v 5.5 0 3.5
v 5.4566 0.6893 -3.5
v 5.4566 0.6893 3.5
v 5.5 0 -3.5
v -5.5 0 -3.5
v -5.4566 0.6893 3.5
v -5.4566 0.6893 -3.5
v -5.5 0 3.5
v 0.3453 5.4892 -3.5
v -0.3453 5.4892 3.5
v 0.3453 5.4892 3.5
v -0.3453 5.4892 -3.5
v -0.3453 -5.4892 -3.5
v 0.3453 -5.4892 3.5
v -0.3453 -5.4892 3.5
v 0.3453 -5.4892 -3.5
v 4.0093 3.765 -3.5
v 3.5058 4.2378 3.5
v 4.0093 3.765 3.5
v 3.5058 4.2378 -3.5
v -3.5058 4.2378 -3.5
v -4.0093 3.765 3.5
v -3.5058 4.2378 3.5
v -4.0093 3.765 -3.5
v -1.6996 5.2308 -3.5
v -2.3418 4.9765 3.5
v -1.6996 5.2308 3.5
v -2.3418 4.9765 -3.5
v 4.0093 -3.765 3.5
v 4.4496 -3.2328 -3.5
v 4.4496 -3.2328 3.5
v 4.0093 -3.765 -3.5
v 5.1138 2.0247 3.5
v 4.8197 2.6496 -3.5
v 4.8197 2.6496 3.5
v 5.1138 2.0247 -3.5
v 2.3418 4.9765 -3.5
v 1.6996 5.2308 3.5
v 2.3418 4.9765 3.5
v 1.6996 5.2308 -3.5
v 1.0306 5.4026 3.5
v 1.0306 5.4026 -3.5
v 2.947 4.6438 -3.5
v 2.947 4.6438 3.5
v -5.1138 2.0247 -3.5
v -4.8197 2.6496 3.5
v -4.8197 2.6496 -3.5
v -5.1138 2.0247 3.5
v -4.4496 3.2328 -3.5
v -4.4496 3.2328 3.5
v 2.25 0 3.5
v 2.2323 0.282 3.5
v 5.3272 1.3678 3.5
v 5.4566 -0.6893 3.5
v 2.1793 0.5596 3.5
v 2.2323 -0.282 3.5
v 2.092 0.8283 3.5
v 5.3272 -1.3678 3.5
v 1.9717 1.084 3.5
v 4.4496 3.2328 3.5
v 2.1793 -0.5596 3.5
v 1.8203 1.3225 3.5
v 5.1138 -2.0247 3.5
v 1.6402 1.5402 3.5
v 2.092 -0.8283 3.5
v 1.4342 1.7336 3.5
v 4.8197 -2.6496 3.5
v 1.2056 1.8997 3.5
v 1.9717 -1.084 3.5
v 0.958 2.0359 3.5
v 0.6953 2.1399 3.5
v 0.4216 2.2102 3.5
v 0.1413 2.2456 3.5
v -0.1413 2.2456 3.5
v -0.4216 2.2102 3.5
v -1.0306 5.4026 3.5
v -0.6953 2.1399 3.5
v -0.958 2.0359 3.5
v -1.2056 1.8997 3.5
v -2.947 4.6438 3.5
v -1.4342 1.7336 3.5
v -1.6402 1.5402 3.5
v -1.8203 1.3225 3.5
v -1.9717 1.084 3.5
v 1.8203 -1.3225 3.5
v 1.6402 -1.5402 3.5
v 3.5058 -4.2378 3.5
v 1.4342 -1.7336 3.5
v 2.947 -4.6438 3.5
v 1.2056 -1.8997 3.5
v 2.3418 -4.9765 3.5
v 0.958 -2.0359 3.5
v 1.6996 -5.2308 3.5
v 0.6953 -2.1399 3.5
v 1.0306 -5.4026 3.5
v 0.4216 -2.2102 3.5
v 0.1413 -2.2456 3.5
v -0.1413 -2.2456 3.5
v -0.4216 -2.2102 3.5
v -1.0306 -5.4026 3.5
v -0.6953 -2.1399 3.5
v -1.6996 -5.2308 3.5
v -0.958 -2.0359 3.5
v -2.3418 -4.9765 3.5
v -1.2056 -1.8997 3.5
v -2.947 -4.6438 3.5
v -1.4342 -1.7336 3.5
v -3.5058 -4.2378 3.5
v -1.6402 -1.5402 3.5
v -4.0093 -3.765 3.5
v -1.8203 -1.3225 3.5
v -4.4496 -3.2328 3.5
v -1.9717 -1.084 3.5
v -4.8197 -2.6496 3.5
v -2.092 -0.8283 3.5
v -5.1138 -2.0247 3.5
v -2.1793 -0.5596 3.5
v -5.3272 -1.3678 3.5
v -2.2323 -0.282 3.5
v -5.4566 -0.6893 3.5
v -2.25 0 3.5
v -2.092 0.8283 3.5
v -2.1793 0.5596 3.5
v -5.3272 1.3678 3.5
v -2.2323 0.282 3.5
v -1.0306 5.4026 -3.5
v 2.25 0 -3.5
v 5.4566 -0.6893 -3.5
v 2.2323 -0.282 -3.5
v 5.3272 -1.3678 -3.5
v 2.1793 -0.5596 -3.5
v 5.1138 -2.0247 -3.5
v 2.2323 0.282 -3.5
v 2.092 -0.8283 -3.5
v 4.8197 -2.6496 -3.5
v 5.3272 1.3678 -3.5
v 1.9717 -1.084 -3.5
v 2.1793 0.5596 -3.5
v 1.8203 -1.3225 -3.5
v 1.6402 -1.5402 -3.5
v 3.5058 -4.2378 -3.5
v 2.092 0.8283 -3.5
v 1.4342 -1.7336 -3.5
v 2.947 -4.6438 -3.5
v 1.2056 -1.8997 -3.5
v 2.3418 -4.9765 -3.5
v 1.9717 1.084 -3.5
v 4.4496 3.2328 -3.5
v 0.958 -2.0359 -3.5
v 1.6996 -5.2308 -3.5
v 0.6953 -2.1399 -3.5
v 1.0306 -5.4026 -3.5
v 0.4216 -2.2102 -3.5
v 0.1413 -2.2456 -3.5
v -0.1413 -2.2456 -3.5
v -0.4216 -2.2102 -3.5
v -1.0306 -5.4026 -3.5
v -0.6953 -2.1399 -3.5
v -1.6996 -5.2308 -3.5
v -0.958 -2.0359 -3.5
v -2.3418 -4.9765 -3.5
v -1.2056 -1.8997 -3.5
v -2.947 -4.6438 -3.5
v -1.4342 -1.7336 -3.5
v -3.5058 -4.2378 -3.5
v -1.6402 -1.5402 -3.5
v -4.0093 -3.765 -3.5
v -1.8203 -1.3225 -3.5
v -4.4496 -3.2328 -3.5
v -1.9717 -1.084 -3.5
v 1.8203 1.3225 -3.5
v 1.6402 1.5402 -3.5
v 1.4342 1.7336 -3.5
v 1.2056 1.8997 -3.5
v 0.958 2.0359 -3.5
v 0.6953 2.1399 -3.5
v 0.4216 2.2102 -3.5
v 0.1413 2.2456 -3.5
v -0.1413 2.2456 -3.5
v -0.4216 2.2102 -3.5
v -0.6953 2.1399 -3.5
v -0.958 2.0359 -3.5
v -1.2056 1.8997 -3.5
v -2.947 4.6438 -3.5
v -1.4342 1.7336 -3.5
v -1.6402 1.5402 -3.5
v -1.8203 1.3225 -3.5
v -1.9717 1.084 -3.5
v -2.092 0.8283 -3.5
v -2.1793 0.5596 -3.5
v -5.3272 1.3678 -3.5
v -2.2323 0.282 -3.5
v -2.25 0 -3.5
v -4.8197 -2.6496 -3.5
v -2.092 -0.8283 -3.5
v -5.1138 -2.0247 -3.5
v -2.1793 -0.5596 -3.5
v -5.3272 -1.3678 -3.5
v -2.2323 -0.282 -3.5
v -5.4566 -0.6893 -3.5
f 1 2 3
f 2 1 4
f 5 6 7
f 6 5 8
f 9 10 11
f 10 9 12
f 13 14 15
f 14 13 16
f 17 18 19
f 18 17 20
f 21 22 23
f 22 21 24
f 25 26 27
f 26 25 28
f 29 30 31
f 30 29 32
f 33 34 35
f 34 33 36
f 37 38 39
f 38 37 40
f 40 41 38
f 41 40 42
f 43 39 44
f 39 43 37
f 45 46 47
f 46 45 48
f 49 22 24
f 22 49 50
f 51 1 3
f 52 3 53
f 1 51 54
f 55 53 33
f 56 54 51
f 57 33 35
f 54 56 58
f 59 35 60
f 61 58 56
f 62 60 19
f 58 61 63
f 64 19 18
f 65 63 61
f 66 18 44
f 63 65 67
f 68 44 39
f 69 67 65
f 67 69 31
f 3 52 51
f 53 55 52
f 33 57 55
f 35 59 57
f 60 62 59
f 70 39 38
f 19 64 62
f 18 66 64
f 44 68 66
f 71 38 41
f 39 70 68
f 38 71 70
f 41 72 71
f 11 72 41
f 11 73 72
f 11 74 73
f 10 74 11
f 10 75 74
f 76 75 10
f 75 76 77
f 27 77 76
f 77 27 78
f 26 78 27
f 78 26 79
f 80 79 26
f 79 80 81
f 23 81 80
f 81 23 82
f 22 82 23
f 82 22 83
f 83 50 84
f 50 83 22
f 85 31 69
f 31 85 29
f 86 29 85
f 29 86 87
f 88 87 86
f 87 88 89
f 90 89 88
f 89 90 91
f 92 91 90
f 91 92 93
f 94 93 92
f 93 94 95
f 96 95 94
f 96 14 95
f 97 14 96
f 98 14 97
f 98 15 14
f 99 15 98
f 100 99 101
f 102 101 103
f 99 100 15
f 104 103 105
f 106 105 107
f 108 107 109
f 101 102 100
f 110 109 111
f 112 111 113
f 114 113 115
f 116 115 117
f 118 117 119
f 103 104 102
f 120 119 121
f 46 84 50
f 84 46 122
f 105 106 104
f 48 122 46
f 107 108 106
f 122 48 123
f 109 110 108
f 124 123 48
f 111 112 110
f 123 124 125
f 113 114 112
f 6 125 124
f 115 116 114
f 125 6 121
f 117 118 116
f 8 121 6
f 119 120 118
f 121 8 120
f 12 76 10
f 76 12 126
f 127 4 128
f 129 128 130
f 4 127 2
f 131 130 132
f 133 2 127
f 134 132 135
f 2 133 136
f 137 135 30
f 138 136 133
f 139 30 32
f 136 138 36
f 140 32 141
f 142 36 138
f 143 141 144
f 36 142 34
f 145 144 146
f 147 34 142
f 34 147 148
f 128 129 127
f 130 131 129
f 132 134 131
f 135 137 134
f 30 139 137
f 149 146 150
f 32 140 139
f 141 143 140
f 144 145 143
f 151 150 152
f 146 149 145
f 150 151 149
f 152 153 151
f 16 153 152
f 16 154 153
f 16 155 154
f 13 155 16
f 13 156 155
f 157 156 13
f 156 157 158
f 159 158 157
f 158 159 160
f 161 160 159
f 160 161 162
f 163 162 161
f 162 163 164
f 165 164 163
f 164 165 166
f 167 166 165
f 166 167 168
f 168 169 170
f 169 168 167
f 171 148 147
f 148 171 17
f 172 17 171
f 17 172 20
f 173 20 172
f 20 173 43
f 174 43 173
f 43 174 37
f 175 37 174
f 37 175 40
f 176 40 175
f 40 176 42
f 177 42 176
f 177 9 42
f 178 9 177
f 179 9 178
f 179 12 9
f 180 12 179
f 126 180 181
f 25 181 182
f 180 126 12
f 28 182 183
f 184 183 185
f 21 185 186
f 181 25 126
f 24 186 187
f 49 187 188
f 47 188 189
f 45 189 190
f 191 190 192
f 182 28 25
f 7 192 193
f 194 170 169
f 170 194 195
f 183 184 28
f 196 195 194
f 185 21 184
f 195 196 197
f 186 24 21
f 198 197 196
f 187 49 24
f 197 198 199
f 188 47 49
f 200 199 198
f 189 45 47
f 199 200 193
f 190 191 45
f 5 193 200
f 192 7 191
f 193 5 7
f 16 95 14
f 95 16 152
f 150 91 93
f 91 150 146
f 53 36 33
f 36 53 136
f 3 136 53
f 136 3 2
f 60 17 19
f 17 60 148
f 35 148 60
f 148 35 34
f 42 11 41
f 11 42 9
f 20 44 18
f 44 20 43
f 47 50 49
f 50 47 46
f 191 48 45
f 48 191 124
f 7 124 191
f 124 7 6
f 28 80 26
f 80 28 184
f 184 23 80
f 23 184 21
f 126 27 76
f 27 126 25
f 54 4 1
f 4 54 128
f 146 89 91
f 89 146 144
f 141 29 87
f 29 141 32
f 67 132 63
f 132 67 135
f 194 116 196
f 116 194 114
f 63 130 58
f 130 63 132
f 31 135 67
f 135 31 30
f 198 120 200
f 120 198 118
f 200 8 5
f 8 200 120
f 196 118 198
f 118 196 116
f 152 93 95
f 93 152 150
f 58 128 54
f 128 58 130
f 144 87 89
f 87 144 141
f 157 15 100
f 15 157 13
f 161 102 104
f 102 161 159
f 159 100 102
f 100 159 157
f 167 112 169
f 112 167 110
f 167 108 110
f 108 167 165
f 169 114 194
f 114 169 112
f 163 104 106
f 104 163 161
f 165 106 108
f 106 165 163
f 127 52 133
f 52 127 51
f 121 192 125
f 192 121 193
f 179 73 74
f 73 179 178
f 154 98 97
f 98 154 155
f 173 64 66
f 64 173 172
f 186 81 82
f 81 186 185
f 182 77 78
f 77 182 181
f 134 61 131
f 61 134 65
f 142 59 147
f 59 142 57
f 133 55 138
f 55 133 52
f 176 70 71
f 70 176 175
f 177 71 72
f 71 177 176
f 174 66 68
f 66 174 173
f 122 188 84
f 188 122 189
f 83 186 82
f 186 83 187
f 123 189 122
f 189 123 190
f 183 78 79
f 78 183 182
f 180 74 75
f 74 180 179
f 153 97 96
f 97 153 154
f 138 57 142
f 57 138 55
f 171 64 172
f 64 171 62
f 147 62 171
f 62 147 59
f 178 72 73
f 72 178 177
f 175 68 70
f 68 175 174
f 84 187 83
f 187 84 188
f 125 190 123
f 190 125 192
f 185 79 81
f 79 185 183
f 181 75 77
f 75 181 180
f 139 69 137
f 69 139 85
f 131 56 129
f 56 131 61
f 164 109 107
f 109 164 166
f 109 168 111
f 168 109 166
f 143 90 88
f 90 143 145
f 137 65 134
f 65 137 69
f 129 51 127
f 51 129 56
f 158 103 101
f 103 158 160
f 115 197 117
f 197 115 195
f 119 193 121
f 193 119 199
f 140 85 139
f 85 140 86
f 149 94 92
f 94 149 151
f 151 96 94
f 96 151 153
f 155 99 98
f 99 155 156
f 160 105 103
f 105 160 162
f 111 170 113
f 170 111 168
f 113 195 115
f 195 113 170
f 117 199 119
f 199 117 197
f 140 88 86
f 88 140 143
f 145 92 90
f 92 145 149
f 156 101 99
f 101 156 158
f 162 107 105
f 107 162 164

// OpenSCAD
$fn = 50;


difference() {
	union() {
		translate(v = [0, 0, -3.5000000000]) {
			cylinder(h = 7, r = 5.5000000000);
		}
	}
	union() {
		translate(v = [0, 0, -100.0000000000]) {
			cylinder(h = 200, r = 2.2500000000);
		}
	}
}
